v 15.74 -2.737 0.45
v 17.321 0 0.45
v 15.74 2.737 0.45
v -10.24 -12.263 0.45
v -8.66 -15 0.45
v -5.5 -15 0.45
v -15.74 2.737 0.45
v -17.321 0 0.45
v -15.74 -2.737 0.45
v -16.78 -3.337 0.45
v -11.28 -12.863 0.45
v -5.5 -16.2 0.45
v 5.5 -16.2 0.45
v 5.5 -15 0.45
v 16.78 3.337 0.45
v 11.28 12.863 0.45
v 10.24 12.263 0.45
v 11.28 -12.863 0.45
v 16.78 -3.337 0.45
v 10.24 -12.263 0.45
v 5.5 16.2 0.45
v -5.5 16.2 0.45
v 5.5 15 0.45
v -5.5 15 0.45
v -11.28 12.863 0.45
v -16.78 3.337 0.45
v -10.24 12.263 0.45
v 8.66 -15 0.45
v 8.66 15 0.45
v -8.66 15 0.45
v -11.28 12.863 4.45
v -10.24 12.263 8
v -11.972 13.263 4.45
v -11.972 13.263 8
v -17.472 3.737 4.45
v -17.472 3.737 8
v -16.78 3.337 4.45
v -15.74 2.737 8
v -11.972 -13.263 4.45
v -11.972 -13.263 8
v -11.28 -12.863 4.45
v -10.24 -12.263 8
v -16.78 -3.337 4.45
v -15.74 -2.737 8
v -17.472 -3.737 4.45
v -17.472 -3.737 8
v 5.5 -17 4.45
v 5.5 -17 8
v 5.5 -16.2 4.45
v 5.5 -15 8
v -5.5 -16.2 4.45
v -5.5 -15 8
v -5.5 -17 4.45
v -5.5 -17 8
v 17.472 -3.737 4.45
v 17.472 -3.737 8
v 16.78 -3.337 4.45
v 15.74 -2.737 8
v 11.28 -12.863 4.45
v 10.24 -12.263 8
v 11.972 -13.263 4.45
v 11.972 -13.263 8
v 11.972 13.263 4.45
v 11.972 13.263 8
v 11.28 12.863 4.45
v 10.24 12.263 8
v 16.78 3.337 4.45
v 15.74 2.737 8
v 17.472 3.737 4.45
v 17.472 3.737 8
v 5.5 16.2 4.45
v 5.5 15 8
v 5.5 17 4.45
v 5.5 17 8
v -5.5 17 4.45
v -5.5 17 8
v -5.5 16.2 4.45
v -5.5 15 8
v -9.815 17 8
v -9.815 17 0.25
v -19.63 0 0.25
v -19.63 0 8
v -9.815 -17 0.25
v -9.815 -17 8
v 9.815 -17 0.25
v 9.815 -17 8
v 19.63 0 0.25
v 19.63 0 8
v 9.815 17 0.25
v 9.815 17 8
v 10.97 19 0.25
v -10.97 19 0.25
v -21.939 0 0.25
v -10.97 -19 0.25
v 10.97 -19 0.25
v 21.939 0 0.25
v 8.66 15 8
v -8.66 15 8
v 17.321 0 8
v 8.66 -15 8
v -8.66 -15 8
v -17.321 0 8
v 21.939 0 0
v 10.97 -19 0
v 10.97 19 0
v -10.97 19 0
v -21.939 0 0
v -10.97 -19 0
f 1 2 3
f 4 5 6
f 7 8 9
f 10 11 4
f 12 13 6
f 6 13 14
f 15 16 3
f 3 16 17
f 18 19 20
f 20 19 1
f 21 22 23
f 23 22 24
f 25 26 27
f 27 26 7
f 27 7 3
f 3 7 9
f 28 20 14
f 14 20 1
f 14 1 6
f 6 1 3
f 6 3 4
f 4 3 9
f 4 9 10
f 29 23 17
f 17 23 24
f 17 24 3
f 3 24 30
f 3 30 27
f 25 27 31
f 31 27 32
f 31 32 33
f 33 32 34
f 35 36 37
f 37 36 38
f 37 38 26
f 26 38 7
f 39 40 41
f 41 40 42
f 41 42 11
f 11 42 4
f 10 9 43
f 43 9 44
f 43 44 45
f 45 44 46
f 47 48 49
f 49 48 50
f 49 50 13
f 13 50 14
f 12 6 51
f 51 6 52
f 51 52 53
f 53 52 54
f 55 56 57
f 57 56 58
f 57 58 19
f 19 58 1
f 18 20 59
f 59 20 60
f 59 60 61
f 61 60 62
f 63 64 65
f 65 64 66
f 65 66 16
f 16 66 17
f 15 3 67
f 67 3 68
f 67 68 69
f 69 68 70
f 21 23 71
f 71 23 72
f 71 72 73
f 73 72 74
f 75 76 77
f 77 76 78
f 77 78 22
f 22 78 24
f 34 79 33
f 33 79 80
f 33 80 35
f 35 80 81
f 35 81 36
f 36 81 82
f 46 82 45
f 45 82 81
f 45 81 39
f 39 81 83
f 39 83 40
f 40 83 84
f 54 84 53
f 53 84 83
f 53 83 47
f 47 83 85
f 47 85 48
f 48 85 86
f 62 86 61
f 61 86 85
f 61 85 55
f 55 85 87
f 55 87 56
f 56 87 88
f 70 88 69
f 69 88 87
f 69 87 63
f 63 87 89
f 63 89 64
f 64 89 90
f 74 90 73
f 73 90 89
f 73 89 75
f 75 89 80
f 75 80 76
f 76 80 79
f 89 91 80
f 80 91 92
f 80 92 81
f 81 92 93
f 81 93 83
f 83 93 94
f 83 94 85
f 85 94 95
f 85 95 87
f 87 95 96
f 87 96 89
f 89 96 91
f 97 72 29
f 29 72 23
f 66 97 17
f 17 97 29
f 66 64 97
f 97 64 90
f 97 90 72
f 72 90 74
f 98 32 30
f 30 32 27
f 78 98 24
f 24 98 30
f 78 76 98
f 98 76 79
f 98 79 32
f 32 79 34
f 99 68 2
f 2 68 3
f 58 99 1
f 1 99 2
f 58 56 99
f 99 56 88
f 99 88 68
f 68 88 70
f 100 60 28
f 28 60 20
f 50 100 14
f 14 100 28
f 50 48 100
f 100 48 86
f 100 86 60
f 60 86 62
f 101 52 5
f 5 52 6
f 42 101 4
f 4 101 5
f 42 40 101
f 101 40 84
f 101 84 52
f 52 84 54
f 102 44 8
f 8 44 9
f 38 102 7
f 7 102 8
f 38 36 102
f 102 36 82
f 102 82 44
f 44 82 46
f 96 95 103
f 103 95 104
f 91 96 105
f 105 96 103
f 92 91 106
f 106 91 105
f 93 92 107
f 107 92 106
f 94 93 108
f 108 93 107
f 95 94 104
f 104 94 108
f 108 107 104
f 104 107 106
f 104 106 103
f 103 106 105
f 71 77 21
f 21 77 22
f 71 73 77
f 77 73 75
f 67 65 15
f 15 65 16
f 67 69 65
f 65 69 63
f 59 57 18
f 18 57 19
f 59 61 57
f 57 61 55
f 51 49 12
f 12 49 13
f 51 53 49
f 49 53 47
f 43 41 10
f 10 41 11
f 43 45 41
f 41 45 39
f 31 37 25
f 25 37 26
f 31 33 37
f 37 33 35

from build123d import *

# Parameters (mm, degrees)
BOSS_EXTRUDE1_DEPTH = 0.45
SKETCH2_W           = 11
SKETCH2_H           = 0.5
BOSS_EXTRUDE2_DEPTH = 0.25
BOSS_EXTRUDE3_DEPTH = 8
BOSS_EXTRUDE4_DEPTH = 0.25
SKETCH5_W           = 11
SKETCH5_H           = 0.8
BOSS_EXTRUDE5_DEPTH = 4


with BuildPart() as part:
    # Sketch1 → Boss-Extrude1 (new body)
    with BuildSketch(Plane.XY):
        Polygon((19.629909152, 0), (9.814954576, 17), (-9.814954576, 17), (-19.629909152, 0), (-9.814954576, -17), (9.814954576, -17), align=None)
    extrude(amount=BOSS_EXTRUDE1_DEPTH)

    # Sketch2 → Boss-Extrude2 (add)
    with BuildSketch(Plane.XY):
        with Locations((0, 17.25)):
            Rectangle(SKETCH2_W, SKETCH2_H)
        Polygon((12.405444566, 13.513139721), (17.905444566, 3.986860279), (17.472431864, 3.736860279), (11.972431864, 13.263139721), align=None)
        Polygon((17.905444566, -3.986860279), (12.405444566, -13.513139721), (11.972431864, -13.263139721), (17.472431864, -3.736860279), align=None)
        with Locations((0, -17.25)):
            Rectangle(SKETCH2_W, SKETCH2_H)
        Polygon((-12.405444566, -13.513139721), (-17.905444566, -3.986860279), (-17.472431864, -3.736860279), (-11.972431864, -13.263139721), align=None)
        Polygon((-17.905444566, 3.986860279), (-12.405444566, 13.513139721), (-11.972431864, 13.263139721), (-17.472431864, 3.736860279), align=None)
    extrude(amount=BOSS_EXTRUDE2_DEPTH)

    # Sketch3 → Boss-Extrude3 (add)
    with BuildSketch(Plane.XY):
        Polygon((-11.972431864, 13.263139721), (-10.240381057, 12.263139721), (-8.660254038, 15), (-5.5, 15), (-5.5, 17), (-7.5, 17), (-9.814954576, 17), (-10.972431864, 14.995190528), align=None)
        Polygon((5.5, 17), (5.5, 15), (8.660254038, 15), (10.240381057, 12.263139721), (11.972431864, 13.263139721), (10.972431864, 14.995190528), (9.814954576, 17), (7.5, 17), align=None)
        Polygon((17.472431864, 3.736860279), (15.740381057, 2.736860279), (17.320508076, 0), (15.740381057, -2.736860279), (17.472431864, -3.736860279), (18.472431864, -2.004809472), (19.629909152, 0), (18.472431864, 2.004809472), align=None)
        Polygon((11.972431864, -13.263139721), (10.240381057, -12.263139721), (8.660254038, -15), (5.5, -15), (5.5, -17), (7.5, -17), (9.814954576, -17), (10.972431864, -14.995190528), align=None)
        Polygon((-5.5, -17), (-5.5, -15), (-8.660254038, -15), (-10.240381057, -12.263139721), (-11.972431864, -13.263139721), (-10.972431864, -14.995190528), (-9.814954576, -17), (-7.5, -17), align=None)
        Polygon((-17.472431864, -3.736860279), (-15.740381057, -2.736860279), (-17.320508076, 0), (-15.740381057, 2.736860279), (-17.472431864, 3.736860279), (-18.472431864, 2.004809472), (-19.629909152, 0), (-18.472431864, -2.004809472), align=None)
    extrude(amount=BOSS_EXTRUDE3_DEPTH)

    # Sketch4 → Boss-Extrude4 (add)
    with BuildSketch(Plane.XY):
        Polygon((21.939310229, 0), (10.969655115, 19), (-10.969655115, 19), (-21.939310229, 0), (-10.969655115, -19), (10.969655115, -19), align=None)
    extrude(amount=BOSS_EXTRUDE4_DEPTH)

    # Sketch5 → Boss-Extrude5 (add)
    with BuildSketch(Plane.XY.offset(0.45)):
        with Locations((0, 16.6)):
            Rectangle(SKETCH5_W, SKETCH5_H)
        Polygon((11.972431864, 13.263139721), (17.472431864, 3.736860279), (16.779611541, 3.336860279), (11.279611541, 12.863139721), align=None)
        Polygon((17.472431864, -3.736860279), (11.972431864, -13.263139721), (11.279611541, -12.863139721), (16.779611541, -3.336860279), align=None)
        with Locations((0, -16.6)):
            Rectangle(SKETCH5_W, SKETCH5_H)
        Polygon((-11.972431864, -13.263139721), (-17.472431864, -3.736860279), (-16.779611541, -3.336860279), (-11.279611541, -12.863139721), align=None)
        Polygon((-17.472431864, 3.736860279), (-11.972431864, 13.263139721), (-11.279611541, 12.863139721), (-16.779611541, 3.336860279), align=None)
    extrude(amount=BOSS_EXTRUDE5_DEPTH)


solid = part.part
